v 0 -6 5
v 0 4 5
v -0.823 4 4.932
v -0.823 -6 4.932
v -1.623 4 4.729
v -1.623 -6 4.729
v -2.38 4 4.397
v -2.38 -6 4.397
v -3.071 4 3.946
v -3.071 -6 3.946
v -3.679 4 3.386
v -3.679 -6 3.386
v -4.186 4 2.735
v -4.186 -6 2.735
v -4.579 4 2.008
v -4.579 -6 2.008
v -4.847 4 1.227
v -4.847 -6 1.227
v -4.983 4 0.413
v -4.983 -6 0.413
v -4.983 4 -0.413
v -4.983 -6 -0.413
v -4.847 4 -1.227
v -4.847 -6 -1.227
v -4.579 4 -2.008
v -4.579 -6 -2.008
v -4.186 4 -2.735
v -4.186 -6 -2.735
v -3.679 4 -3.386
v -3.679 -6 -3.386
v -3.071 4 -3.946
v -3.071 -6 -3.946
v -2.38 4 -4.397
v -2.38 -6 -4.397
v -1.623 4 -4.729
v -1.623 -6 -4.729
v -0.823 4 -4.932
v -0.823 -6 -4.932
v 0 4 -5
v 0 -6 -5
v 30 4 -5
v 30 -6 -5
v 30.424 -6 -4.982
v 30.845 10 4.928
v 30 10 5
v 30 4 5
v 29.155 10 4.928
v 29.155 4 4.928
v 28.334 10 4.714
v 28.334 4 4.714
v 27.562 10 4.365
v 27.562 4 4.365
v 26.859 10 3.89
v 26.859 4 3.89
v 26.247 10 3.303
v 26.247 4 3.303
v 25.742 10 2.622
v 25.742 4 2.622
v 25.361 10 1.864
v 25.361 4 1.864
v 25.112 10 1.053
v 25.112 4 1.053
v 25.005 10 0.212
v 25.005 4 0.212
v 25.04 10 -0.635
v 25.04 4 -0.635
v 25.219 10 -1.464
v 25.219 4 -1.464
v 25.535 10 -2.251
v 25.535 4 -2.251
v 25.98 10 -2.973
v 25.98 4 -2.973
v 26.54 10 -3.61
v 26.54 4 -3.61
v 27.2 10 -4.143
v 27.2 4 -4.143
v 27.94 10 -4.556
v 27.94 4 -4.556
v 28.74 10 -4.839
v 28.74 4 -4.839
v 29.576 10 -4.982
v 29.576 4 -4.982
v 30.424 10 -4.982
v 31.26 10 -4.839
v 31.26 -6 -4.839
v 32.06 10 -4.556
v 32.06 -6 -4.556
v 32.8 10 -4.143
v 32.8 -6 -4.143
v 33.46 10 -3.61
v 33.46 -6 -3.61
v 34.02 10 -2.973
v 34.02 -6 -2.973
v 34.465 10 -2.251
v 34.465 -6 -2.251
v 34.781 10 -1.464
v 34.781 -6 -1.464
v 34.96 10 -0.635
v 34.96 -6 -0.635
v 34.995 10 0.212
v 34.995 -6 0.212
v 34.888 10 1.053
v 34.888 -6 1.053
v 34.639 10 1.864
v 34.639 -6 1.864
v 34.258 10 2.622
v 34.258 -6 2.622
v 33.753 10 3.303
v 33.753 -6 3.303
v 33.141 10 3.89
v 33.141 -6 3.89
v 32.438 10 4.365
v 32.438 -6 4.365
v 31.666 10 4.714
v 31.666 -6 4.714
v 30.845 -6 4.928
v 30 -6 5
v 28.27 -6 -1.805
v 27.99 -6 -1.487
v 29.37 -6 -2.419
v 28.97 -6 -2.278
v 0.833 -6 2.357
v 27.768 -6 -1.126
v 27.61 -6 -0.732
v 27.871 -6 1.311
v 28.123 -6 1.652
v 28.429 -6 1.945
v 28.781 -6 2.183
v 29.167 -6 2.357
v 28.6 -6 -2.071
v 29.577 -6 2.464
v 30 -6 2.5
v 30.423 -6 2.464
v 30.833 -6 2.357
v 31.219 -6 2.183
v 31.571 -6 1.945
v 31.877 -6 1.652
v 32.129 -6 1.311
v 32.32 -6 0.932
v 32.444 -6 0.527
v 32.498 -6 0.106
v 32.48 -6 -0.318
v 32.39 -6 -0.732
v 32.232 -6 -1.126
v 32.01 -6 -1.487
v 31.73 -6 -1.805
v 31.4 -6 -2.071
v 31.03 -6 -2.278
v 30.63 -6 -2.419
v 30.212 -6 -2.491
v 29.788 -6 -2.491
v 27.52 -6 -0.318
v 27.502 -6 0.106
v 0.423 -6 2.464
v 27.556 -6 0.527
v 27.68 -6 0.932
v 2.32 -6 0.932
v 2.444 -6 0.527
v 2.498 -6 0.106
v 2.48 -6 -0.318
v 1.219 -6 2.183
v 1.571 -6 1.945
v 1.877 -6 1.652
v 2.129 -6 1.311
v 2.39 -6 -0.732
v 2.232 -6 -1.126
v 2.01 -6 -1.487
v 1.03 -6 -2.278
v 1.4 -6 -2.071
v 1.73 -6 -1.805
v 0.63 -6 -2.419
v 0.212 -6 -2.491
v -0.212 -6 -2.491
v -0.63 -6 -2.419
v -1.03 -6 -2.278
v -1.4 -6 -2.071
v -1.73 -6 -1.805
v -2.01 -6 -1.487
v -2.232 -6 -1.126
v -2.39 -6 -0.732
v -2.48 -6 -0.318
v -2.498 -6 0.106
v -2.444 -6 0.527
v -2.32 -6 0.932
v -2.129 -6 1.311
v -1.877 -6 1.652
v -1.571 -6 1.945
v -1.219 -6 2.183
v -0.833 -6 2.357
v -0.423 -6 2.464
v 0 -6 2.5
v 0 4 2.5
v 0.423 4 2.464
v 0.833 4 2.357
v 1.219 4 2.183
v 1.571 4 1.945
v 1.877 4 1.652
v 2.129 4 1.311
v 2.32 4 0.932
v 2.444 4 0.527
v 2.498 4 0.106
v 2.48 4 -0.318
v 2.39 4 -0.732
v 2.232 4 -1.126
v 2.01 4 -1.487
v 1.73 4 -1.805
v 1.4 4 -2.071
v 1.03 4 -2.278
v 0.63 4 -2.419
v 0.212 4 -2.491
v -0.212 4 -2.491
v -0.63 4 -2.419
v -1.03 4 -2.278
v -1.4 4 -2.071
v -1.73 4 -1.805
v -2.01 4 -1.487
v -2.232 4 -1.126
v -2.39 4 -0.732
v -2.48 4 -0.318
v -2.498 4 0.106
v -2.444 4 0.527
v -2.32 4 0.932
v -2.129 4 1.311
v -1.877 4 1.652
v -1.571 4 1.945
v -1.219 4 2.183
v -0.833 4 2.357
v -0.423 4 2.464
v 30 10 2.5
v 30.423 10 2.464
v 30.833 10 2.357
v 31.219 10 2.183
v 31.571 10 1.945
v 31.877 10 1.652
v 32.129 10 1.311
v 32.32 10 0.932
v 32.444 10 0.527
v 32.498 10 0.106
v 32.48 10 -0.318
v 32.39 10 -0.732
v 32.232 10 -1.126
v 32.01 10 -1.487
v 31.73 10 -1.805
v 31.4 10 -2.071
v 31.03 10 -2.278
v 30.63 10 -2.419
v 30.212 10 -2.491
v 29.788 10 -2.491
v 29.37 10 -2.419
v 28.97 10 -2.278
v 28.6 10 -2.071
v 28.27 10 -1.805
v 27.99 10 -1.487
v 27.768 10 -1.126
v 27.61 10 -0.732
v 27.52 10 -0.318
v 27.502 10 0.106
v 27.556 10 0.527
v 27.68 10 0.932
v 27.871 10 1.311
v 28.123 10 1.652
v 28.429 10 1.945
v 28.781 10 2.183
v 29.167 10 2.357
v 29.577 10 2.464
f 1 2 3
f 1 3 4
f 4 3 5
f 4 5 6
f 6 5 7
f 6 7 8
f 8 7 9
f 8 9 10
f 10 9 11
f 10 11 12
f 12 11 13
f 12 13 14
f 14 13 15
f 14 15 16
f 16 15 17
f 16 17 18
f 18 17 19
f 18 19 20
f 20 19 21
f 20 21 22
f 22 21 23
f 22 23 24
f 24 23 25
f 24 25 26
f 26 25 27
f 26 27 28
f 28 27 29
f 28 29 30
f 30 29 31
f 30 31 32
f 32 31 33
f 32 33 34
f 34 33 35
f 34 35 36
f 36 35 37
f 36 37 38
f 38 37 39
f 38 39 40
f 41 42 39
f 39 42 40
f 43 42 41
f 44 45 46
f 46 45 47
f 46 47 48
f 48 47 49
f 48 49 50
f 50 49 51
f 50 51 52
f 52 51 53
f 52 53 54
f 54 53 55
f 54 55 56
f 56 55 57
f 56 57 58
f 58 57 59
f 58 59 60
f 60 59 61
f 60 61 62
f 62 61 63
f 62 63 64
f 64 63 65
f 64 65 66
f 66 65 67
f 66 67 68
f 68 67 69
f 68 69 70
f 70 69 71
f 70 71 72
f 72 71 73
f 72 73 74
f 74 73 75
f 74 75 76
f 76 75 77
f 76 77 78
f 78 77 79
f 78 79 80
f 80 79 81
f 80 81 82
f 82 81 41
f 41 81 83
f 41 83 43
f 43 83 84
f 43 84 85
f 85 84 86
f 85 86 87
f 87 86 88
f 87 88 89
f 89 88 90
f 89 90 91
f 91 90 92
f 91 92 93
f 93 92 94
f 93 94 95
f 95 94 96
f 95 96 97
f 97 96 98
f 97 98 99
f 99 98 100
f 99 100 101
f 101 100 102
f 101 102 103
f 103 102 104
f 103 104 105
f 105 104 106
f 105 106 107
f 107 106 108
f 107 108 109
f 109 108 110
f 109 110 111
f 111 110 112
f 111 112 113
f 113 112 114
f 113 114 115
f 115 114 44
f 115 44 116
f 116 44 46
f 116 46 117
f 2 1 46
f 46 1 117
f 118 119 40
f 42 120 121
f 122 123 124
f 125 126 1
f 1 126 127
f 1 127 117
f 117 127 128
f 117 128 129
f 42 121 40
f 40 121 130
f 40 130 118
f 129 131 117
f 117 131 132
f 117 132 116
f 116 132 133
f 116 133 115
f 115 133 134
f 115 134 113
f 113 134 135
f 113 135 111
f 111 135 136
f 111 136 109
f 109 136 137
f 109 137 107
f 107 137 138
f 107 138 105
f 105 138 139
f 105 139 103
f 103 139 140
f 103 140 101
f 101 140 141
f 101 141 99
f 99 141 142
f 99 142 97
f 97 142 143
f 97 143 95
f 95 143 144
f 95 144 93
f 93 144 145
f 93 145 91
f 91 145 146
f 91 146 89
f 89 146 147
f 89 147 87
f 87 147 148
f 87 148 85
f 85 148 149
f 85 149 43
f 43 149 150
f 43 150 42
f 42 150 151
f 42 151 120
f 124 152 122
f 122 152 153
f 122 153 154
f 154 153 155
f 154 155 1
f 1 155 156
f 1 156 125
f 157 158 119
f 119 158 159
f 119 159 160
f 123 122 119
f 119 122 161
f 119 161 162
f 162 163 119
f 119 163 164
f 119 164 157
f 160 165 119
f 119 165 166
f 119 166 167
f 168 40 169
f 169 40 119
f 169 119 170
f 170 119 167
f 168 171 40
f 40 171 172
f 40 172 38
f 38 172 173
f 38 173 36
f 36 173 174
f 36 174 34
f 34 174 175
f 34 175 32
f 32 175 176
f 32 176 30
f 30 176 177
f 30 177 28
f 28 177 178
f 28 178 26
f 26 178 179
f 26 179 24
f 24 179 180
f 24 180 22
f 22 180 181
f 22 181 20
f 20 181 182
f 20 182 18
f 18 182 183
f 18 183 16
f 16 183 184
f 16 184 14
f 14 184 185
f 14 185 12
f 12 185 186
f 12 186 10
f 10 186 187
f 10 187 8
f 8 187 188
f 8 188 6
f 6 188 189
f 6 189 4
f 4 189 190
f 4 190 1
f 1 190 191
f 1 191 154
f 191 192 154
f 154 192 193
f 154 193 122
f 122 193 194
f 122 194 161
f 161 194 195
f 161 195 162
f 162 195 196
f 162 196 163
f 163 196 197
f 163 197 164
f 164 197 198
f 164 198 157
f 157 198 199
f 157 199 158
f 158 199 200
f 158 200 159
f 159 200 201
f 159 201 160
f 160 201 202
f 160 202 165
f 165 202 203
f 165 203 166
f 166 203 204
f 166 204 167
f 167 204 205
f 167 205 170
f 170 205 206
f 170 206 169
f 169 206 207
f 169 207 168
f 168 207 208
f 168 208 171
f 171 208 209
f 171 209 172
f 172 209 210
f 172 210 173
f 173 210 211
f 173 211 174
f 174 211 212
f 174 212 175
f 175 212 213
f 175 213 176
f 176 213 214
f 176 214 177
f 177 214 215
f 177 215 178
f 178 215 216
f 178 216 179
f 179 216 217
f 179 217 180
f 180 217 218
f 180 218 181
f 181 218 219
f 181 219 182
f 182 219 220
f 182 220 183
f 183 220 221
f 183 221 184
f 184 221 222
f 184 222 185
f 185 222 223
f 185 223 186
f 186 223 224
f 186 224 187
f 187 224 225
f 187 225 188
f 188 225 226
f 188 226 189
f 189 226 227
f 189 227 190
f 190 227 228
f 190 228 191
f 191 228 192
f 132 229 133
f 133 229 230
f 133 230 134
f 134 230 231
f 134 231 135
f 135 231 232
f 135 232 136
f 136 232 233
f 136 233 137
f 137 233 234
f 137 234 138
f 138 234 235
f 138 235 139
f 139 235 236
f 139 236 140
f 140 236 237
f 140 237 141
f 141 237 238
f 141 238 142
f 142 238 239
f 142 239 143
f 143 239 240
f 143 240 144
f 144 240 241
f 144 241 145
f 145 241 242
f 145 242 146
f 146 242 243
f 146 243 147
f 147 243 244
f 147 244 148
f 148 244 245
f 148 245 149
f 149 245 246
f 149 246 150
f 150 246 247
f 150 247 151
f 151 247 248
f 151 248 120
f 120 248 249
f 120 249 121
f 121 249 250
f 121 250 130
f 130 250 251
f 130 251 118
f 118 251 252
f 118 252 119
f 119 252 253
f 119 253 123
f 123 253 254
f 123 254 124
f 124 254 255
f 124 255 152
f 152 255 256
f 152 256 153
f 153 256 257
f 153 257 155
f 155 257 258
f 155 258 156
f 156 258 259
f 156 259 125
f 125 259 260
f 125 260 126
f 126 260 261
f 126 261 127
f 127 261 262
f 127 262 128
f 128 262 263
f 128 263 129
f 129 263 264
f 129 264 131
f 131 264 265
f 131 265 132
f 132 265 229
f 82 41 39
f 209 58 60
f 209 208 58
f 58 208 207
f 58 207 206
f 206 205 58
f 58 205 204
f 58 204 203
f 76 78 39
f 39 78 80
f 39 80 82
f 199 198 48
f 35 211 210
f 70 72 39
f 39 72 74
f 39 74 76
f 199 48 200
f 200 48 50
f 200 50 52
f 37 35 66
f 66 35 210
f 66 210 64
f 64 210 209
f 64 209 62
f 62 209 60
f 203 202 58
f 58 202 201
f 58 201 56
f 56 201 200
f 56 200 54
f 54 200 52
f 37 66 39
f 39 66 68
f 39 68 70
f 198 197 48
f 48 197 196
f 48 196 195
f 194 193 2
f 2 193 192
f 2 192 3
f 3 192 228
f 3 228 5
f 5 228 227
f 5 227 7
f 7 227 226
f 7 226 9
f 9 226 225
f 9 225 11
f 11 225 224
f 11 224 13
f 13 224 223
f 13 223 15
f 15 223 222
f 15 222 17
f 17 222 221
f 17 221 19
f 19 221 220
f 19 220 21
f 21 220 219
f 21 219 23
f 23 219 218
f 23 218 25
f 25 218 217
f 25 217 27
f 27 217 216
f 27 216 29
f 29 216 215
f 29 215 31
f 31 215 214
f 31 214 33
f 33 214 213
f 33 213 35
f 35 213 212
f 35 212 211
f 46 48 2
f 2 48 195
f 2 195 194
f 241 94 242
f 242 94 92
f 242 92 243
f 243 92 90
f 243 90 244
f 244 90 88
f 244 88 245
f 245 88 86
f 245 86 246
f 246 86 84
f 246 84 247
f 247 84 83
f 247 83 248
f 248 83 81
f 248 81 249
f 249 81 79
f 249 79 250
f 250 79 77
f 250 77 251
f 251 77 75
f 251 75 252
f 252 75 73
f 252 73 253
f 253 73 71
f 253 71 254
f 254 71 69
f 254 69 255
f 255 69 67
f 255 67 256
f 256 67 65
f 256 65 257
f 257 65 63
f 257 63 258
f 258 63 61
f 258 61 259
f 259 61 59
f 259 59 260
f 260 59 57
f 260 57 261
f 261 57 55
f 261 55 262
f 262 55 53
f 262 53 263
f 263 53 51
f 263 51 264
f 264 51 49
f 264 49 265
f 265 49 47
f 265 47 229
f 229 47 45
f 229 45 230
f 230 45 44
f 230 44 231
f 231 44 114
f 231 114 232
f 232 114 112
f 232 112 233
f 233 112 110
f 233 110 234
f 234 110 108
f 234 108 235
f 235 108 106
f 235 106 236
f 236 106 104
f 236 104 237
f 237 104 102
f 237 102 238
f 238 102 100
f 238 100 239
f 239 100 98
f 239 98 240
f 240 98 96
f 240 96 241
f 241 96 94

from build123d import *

# Parameters (mm, degrees)
BOSS_EXTRUDE1_DEPTH      = 4
BOSS_EXTRUDE1_DEPTH_BACK = 6
SKETCH1_R                = 2.5
BOSS_EXTRUDE3_DEPTH      = 11
BOSS_EXTRUDE3_DEPTH_BACK = 5
SKETCH3_R                = 5
SKETCH3_R_2              = 2.5


with BuildPart() as part:
    # Sketch1 → Boss-Extrude1 (new, two sides: drawn at the far end of the back side and taken through both)
    with BuildSketch(Plane(origin=(0, 0, 0), x_dir=(1, 0, 0), z_dir=(0, 1, 0)).offset(-BOSS_EXTRUDE1_DEPTH_BACK)):
        with BuildLine():
            Line((0, 5), (30, 5))
            ThreePointArc((30, 5), (35, 0), (30, -5))
            Line((30, -5), (0, -5))
            ThreePointArc((0, -5), (-5, 0), (0, 5))
        make_face()
        with Locations(Location((0, 0, 0), (0, 0, 270))):
            Circle(SKETCH1_R, mode=Mode.SUBTRACT)
        with Locations(Location((30, 0, 0), (0, 0, 270))):
            Circle(SKETCH1_R, mode=Mode.SUBTRACT)
    extrude(amount=BOSS_EXTRUDE1_DEPTH + BOSS_EXTRUDE1_DEPTH_BACK)

    # Sketch3 → Boss-Extrude3 (add, two sides: drawn at the far end of the back side and taken through both)
    with BuildSketch(Plane(origin=(0, -1, 0), x_dir=(1, 0, 0), z_dir=(0, 1, 0)).offset(-BOSS_EXTRUDE3_DEPTH_BACK)):
        with Locations(Location((30, 0, 0), (0, 0, 270))):
            Circle(SKETCH3_R)
        with Locations(Location((30, 0, 0), (0, 0, 270))):
            Circle(SKETCH3_R_2, mode=Mode.SUBTRACT)
    extrude(amount=BOSS_EXTRUDE3_DEPTH + BOSS_EXTRUDE3_DEPTH_BACK)


solid = part.part
